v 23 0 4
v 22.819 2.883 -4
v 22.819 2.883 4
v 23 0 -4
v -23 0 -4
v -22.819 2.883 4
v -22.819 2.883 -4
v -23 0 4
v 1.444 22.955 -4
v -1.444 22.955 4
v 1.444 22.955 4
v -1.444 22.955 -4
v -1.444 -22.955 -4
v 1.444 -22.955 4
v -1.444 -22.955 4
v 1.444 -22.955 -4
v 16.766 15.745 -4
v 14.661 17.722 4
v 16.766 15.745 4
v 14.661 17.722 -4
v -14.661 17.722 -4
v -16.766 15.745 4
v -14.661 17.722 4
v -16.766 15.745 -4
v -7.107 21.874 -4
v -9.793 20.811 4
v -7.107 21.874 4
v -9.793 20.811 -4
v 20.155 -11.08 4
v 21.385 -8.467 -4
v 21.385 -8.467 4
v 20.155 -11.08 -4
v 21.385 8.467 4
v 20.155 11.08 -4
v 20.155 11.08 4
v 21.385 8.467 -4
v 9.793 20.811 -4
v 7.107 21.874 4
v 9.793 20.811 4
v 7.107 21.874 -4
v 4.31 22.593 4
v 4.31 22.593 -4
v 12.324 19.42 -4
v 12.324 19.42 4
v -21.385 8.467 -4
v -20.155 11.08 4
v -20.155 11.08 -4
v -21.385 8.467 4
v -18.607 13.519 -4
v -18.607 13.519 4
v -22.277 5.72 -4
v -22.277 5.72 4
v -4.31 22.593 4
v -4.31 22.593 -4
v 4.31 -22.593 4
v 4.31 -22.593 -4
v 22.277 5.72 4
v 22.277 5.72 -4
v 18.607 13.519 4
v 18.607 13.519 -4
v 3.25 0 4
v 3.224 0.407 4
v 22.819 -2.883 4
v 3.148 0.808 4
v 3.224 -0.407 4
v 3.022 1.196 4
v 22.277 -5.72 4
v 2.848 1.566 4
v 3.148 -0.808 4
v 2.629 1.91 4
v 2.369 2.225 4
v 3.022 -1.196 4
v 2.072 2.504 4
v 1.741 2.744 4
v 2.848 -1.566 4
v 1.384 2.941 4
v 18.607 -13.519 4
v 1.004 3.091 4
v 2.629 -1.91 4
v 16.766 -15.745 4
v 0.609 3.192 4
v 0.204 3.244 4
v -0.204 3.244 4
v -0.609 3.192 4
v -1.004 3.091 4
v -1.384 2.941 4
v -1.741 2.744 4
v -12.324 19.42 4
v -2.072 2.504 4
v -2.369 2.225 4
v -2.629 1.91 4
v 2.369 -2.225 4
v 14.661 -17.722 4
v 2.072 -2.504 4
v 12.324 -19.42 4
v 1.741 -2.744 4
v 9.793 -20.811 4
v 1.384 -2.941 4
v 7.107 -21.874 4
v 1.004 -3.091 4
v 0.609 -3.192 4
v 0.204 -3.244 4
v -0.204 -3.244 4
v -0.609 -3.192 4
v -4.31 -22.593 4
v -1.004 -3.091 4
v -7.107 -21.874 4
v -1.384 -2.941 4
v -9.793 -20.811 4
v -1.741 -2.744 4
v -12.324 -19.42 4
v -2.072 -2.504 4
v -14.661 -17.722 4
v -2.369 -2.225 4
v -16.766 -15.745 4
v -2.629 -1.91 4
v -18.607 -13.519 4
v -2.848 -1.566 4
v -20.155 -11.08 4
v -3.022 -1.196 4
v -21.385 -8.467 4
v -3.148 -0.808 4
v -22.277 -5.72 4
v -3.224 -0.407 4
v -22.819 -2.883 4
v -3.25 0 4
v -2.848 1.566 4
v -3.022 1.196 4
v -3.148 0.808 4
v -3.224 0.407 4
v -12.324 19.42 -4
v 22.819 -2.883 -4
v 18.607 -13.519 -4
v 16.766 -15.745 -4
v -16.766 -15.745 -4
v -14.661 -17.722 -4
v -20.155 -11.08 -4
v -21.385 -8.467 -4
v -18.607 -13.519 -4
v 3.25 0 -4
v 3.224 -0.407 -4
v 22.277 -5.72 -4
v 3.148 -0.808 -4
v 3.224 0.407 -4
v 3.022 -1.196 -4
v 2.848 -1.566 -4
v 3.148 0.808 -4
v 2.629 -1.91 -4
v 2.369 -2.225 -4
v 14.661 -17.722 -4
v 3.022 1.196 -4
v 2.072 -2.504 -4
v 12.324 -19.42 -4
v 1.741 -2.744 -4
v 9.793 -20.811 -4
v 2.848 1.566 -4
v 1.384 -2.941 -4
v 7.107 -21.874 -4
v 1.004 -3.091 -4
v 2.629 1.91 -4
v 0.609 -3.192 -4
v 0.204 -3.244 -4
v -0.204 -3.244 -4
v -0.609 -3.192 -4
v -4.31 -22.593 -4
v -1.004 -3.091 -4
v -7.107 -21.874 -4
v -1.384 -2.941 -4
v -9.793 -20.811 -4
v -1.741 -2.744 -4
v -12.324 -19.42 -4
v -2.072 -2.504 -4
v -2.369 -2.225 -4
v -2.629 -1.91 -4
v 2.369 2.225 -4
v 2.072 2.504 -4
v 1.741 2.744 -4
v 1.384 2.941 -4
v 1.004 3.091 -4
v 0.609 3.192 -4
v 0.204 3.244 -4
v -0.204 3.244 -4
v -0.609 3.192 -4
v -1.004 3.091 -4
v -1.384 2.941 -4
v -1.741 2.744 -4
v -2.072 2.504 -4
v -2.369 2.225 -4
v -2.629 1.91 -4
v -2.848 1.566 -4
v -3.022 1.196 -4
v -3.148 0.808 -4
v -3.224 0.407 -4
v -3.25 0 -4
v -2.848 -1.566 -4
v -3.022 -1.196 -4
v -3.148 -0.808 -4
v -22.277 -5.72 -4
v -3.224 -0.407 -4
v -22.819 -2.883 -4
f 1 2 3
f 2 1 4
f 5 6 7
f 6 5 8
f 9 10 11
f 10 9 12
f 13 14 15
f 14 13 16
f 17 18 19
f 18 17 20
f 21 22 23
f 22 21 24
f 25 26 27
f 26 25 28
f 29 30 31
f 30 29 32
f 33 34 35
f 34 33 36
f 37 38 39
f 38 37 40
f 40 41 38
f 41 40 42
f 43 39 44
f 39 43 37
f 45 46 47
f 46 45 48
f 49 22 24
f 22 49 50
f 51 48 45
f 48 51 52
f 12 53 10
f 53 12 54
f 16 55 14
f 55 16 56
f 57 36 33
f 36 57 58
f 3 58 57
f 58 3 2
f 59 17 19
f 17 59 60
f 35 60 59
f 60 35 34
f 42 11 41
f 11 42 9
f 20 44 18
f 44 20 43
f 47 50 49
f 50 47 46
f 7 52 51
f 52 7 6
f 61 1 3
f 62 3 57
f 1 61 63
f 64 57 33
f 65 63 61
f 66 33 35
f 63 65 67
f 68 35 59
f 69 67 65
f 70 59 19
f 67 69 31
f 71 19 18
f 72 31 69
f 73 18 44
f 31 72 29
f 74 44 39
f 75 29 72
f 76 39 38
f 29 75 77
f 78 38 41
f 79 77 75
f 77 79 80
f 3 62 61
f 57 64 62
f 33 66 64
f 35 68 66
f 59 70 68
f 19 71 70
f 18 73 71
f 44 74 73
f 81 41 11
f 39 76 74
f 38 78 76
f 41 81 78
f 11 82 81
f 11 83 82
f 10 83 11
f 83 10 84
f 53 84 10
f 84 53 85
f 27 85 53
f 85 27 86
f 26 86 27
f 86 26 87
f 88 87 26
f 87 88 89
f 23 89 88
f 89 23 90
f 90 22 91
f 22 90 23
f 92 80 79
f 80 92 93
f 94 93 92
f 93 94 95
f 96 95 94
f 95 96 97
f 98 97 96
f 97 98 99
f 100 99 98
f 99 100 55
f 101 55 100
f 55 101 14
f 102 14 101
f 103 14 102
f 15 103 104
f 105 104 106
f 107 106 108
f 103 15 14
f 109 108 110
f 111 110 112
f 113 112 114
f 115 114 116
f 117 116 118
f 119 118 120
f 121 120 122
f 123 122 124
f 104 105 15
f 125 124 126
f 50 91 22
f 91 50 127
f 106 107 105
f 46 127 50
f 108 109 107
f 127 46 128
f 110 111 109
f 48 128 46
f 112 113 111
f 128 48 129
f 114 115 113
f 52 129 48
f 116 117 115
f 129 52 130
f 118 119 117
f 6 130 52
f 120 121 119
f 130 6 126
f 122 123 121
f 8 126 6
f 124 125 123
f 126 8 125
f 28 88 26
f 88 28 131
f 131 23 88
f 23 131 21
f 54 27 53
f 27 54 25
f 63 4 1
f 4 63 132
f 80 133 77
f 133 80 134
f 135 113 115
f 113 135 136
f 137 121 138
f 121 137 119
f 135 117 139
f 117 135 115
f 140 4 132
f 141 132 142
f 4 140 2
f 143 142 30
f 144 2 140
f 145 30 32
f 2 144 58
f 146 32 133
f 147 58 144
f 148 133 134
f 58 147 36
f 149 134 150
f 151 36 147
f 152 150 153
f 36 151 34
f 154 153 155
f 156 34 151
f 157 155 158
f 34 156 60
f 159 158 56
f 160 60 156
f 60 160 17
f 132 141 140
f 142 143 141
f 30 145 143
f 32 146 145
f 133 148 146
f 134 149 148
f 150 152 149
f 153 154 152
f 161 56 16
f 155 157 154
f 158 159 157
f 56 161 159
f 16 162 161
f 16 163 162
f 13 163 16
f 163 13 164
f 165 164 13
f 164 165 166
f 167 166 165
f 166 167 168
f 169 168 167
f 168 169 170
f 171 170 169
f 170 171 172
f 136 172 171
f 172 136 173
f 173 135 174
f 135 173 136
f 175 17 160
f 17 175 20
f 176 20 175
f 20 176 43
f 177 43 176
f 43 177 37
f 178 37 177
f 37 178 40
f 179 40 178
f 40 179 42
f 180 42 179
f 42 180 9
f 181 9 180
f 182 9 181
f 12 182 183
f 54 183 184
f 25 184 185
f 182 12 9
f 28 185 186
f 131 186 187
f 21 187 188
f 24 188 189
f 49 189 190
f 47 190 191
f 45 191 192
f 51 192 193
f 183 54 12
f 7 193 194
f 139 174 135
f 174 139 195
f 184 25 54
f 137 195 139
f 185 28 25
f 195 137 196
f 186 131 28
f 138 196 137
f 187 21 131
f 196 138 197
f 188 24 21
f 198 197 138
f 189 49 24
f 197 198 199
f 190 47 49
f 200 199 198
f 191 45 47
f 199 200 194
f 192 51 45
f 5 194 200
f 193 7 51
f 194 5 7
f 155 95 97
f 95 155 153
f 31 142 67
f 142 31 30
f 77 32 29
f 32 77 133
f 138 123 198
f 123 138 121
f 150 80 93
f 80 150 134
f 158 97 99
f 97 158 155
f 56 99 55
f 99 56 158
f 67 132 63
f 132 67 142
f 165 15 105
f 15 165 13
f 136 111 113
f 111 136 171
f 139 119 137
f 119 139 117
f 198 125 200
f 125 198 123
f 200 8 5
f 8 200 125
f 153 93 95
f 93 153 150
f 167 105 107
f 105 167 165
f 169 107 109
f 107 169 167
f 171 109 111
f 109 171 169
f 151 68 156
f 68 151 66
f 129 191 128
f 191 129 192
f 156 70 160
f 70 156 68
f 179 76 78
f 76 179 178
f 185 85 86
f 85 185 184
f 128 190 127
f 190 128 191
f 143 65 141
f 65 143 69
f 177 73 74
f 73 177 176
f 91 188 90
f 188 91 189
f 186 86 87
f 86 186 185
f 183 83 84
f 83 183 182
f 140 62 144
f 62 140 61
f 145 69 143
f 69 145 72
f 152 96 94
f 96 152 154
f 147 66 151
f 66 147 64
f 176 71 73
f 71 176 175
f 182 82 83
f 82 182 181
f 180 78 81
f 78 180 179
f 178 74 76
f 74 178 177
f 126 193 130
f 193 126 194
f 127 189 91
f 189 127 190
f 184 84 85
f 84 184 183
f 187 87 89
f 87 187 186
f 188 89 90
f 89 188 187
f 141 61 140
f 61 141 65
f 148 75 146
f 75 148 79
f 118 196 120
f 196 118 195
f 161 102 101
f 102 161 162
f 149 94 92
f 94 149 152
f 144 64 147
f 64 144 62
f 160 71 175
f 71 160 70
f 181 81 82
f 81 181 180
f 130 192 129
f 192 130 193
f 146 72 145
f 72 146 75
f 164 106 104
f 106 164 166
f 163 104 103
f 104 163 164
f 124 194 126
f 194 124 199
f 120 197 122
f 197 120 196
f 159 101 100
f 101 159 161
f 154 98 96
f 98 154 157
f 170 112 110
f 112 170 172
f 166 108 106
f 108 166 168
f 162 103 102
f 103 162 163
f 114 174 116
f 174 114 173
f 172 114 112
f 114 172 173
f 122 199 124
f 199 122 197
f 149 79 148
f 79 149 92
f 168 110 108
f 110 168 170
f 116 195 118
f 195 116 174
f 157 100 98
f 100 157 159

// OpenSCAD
$fn = 50;


difference() {
	union() {
		translate(v = [0, 0, -4.0000000000]) {
			cylinder(h = 8, r = 23.0000000000);
		}
	}
	union() {
		translate(v = [0, 0, -100.0000000000]) {
			cylinder(h = 200, r = 3.2500000000);
		}
	}
}
